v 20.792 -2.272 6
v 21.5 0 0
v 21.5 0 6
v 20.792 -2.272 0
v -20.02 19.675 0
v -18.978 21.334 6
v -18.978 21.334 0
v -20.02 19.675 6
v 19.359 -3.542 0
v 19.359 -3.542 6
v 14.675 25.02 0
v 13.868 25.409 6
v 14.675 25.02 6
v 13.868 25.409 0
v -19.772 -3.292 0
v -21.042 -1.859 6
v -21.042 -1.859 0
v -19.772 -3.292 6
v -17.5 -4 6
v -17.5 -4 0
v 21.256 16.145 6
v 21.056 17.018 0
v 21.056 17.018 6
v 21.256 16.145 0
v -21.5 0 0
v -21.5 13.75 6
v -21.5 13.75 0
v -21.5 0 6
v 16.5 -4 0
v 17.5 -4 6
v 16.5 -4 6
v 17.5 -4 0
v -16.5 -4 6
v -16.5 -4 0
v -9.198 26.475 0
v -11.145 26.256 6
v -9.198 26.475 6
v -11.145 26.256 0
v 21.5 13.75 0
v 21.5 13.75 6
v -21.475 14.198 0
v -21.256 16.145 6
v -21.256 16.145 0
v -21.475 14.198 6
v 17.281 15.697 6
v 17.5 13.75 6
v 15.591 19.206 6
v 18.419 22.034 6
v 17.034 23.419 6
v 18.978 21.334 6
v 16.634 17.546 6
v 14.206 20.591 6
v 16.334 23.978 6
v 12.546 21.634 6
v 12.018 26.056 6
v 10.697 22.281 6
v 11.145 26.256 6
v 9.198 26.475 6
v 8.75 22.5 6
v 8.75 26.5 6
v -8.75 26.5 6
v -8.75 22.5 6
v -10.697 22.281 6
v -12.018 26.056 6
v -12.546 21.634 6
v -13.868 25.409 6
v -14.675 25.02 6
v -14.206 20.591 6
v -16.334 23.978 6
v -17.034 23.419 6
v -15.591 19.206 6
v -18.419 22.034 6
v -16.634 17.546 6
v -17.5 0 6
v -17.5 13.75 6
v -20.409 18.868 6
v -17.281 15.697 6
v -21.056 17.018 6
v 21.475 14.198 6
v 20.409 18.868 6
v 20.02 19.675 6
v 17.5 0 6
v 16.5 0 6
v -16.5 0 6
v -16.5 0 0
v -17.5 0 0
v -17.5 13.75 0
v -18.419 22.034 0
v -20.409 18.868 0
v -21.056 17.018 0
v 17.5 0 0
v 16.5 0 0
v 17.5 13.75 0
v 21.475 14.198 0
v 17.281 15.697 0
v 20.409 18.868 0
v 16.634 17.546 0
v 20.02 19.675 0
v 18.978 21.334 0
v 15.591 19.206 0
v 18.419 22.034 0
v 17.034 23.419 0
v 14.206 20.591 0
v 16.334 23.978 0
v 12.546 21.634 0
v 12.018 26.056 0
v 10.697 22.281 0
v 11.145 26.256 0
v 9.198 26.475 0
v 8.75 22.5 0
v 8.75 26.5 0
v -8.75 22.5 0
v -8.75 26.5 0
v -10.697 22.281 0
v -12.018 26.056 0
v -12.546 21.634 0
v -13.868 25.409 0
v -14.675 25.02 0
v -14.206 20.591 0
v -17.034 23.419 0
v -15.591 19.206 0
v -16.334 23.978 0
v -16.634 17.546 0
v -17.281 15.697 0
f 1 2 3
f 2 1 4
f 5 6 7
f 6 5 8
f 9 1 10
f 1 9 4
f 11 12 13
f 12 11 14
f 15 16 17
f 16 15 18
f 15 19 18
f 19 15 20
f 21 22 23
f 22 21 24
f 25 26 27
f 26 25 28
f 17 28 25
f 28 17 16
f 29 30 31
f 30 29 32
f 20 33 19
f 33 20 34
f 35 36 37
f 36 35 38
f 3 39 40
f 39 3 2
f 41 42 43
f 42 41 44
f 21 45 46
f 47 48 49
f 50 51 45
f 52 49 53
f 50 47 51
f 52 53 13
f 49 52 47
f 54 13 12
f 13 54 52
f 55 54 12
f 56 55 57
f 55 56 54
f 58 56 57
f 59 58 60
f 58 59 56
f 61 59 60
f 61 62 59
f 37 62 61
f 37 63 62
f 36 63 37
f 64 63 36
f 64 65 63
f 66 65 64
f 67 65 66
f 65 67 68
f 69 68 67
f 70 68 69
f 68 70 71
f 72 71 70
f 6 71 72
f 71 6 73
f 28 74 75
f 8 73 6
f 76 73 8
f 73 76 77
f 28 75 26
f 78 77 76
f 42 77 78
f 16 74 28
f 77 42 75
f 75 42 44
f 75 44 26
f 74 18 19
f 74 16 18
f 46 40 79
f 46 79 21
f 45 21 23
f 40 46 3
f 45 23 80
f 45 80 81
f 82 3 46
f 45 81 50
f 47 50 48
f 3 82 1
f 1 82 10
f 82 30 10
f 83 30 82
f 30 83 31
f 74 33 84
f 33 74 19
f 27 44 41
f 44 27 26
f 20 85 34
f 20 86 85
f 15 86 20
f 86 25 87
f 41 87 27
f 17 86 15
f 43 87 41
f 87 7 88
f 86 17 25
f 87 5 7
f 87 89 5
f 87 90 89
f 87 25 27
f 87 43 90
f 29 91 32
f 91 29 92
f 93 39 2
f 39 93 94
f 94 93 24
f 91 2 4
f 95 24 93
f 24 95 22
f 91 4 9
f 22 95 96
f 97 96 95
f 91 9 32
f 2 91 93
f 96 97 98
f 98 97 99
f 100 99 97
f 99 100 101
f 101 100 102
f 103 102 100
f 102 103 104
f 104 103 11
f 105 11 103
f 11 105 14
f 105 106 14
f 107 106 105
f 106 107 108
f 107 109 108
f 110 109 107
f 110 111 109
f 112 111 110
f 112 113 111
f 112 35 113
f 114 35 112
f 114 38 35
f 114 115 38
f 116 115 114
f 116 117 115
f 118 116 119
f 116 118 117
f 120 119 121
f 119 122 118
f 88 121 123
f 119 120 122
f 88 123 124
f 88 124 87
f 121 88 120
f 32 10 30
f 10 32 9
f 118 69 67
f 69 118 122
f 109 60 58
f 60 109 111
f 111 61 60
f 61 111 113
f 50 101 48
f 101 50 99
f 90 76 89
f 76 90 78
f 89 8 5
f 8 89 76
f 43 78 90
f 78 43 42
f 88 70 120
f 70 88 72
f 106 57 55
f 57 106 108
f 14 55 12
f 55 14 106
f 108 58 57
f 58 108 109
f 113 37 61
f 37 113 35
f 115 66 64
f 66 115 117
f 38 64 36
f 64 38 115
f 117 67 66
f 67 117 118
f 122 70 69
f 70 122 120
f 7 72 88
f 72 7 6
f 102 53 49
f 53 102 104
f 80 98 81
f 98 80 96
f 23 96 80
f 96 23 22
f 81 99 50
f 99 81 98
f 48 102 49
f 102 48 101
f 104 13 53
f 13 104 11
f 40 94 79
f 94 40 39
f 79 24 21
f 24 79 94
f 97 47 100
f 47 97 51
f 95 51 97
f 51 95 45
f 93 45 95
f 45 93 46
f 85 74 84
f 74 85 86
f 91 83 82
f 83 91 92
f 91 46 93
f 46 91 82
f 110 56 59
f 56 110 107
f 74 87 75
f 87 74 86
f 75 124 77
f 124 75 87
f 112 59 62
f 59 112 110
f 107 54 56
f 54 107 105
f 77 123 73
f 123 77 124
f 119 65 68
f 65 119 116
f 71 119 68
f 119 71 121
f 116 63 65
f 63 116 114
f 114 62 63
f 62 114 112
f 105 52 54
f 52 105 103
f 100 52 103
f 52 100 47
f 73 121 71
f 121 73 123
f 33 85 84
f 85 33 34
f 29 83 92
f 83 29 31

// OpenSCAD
/*

    My bike has a front brake mount where the nut sits inside the
    frame.  That makes it hard to attach a rack.  This adapter sits
    around the brake mount (like a washer) and I screw into it from below to attach the mudguard.
    
    (c) R Bowman 2017, released under CERN open hardware license
    
*/

use <utilities.scad>;

mg_w = 35;
mg_h = mg_w/2 + 5;
mg_r = mg_w/4;

module mudguard(h=999,center=false, offset=0){
    linear_extrude(h,center=center){
        offset(offset) hull() reflect([1,0,0]){
            translate([-mg_w/2,0]) square(1);
            translate([-mg_w/2+mg_r, mg_h-mg_r]) circle(mg_r);
        }
    }
}



difference(){
    mudguard(h=6,offset=4);
    mudguard();
    cube([mg_w-2,10,999],center=true);
}
